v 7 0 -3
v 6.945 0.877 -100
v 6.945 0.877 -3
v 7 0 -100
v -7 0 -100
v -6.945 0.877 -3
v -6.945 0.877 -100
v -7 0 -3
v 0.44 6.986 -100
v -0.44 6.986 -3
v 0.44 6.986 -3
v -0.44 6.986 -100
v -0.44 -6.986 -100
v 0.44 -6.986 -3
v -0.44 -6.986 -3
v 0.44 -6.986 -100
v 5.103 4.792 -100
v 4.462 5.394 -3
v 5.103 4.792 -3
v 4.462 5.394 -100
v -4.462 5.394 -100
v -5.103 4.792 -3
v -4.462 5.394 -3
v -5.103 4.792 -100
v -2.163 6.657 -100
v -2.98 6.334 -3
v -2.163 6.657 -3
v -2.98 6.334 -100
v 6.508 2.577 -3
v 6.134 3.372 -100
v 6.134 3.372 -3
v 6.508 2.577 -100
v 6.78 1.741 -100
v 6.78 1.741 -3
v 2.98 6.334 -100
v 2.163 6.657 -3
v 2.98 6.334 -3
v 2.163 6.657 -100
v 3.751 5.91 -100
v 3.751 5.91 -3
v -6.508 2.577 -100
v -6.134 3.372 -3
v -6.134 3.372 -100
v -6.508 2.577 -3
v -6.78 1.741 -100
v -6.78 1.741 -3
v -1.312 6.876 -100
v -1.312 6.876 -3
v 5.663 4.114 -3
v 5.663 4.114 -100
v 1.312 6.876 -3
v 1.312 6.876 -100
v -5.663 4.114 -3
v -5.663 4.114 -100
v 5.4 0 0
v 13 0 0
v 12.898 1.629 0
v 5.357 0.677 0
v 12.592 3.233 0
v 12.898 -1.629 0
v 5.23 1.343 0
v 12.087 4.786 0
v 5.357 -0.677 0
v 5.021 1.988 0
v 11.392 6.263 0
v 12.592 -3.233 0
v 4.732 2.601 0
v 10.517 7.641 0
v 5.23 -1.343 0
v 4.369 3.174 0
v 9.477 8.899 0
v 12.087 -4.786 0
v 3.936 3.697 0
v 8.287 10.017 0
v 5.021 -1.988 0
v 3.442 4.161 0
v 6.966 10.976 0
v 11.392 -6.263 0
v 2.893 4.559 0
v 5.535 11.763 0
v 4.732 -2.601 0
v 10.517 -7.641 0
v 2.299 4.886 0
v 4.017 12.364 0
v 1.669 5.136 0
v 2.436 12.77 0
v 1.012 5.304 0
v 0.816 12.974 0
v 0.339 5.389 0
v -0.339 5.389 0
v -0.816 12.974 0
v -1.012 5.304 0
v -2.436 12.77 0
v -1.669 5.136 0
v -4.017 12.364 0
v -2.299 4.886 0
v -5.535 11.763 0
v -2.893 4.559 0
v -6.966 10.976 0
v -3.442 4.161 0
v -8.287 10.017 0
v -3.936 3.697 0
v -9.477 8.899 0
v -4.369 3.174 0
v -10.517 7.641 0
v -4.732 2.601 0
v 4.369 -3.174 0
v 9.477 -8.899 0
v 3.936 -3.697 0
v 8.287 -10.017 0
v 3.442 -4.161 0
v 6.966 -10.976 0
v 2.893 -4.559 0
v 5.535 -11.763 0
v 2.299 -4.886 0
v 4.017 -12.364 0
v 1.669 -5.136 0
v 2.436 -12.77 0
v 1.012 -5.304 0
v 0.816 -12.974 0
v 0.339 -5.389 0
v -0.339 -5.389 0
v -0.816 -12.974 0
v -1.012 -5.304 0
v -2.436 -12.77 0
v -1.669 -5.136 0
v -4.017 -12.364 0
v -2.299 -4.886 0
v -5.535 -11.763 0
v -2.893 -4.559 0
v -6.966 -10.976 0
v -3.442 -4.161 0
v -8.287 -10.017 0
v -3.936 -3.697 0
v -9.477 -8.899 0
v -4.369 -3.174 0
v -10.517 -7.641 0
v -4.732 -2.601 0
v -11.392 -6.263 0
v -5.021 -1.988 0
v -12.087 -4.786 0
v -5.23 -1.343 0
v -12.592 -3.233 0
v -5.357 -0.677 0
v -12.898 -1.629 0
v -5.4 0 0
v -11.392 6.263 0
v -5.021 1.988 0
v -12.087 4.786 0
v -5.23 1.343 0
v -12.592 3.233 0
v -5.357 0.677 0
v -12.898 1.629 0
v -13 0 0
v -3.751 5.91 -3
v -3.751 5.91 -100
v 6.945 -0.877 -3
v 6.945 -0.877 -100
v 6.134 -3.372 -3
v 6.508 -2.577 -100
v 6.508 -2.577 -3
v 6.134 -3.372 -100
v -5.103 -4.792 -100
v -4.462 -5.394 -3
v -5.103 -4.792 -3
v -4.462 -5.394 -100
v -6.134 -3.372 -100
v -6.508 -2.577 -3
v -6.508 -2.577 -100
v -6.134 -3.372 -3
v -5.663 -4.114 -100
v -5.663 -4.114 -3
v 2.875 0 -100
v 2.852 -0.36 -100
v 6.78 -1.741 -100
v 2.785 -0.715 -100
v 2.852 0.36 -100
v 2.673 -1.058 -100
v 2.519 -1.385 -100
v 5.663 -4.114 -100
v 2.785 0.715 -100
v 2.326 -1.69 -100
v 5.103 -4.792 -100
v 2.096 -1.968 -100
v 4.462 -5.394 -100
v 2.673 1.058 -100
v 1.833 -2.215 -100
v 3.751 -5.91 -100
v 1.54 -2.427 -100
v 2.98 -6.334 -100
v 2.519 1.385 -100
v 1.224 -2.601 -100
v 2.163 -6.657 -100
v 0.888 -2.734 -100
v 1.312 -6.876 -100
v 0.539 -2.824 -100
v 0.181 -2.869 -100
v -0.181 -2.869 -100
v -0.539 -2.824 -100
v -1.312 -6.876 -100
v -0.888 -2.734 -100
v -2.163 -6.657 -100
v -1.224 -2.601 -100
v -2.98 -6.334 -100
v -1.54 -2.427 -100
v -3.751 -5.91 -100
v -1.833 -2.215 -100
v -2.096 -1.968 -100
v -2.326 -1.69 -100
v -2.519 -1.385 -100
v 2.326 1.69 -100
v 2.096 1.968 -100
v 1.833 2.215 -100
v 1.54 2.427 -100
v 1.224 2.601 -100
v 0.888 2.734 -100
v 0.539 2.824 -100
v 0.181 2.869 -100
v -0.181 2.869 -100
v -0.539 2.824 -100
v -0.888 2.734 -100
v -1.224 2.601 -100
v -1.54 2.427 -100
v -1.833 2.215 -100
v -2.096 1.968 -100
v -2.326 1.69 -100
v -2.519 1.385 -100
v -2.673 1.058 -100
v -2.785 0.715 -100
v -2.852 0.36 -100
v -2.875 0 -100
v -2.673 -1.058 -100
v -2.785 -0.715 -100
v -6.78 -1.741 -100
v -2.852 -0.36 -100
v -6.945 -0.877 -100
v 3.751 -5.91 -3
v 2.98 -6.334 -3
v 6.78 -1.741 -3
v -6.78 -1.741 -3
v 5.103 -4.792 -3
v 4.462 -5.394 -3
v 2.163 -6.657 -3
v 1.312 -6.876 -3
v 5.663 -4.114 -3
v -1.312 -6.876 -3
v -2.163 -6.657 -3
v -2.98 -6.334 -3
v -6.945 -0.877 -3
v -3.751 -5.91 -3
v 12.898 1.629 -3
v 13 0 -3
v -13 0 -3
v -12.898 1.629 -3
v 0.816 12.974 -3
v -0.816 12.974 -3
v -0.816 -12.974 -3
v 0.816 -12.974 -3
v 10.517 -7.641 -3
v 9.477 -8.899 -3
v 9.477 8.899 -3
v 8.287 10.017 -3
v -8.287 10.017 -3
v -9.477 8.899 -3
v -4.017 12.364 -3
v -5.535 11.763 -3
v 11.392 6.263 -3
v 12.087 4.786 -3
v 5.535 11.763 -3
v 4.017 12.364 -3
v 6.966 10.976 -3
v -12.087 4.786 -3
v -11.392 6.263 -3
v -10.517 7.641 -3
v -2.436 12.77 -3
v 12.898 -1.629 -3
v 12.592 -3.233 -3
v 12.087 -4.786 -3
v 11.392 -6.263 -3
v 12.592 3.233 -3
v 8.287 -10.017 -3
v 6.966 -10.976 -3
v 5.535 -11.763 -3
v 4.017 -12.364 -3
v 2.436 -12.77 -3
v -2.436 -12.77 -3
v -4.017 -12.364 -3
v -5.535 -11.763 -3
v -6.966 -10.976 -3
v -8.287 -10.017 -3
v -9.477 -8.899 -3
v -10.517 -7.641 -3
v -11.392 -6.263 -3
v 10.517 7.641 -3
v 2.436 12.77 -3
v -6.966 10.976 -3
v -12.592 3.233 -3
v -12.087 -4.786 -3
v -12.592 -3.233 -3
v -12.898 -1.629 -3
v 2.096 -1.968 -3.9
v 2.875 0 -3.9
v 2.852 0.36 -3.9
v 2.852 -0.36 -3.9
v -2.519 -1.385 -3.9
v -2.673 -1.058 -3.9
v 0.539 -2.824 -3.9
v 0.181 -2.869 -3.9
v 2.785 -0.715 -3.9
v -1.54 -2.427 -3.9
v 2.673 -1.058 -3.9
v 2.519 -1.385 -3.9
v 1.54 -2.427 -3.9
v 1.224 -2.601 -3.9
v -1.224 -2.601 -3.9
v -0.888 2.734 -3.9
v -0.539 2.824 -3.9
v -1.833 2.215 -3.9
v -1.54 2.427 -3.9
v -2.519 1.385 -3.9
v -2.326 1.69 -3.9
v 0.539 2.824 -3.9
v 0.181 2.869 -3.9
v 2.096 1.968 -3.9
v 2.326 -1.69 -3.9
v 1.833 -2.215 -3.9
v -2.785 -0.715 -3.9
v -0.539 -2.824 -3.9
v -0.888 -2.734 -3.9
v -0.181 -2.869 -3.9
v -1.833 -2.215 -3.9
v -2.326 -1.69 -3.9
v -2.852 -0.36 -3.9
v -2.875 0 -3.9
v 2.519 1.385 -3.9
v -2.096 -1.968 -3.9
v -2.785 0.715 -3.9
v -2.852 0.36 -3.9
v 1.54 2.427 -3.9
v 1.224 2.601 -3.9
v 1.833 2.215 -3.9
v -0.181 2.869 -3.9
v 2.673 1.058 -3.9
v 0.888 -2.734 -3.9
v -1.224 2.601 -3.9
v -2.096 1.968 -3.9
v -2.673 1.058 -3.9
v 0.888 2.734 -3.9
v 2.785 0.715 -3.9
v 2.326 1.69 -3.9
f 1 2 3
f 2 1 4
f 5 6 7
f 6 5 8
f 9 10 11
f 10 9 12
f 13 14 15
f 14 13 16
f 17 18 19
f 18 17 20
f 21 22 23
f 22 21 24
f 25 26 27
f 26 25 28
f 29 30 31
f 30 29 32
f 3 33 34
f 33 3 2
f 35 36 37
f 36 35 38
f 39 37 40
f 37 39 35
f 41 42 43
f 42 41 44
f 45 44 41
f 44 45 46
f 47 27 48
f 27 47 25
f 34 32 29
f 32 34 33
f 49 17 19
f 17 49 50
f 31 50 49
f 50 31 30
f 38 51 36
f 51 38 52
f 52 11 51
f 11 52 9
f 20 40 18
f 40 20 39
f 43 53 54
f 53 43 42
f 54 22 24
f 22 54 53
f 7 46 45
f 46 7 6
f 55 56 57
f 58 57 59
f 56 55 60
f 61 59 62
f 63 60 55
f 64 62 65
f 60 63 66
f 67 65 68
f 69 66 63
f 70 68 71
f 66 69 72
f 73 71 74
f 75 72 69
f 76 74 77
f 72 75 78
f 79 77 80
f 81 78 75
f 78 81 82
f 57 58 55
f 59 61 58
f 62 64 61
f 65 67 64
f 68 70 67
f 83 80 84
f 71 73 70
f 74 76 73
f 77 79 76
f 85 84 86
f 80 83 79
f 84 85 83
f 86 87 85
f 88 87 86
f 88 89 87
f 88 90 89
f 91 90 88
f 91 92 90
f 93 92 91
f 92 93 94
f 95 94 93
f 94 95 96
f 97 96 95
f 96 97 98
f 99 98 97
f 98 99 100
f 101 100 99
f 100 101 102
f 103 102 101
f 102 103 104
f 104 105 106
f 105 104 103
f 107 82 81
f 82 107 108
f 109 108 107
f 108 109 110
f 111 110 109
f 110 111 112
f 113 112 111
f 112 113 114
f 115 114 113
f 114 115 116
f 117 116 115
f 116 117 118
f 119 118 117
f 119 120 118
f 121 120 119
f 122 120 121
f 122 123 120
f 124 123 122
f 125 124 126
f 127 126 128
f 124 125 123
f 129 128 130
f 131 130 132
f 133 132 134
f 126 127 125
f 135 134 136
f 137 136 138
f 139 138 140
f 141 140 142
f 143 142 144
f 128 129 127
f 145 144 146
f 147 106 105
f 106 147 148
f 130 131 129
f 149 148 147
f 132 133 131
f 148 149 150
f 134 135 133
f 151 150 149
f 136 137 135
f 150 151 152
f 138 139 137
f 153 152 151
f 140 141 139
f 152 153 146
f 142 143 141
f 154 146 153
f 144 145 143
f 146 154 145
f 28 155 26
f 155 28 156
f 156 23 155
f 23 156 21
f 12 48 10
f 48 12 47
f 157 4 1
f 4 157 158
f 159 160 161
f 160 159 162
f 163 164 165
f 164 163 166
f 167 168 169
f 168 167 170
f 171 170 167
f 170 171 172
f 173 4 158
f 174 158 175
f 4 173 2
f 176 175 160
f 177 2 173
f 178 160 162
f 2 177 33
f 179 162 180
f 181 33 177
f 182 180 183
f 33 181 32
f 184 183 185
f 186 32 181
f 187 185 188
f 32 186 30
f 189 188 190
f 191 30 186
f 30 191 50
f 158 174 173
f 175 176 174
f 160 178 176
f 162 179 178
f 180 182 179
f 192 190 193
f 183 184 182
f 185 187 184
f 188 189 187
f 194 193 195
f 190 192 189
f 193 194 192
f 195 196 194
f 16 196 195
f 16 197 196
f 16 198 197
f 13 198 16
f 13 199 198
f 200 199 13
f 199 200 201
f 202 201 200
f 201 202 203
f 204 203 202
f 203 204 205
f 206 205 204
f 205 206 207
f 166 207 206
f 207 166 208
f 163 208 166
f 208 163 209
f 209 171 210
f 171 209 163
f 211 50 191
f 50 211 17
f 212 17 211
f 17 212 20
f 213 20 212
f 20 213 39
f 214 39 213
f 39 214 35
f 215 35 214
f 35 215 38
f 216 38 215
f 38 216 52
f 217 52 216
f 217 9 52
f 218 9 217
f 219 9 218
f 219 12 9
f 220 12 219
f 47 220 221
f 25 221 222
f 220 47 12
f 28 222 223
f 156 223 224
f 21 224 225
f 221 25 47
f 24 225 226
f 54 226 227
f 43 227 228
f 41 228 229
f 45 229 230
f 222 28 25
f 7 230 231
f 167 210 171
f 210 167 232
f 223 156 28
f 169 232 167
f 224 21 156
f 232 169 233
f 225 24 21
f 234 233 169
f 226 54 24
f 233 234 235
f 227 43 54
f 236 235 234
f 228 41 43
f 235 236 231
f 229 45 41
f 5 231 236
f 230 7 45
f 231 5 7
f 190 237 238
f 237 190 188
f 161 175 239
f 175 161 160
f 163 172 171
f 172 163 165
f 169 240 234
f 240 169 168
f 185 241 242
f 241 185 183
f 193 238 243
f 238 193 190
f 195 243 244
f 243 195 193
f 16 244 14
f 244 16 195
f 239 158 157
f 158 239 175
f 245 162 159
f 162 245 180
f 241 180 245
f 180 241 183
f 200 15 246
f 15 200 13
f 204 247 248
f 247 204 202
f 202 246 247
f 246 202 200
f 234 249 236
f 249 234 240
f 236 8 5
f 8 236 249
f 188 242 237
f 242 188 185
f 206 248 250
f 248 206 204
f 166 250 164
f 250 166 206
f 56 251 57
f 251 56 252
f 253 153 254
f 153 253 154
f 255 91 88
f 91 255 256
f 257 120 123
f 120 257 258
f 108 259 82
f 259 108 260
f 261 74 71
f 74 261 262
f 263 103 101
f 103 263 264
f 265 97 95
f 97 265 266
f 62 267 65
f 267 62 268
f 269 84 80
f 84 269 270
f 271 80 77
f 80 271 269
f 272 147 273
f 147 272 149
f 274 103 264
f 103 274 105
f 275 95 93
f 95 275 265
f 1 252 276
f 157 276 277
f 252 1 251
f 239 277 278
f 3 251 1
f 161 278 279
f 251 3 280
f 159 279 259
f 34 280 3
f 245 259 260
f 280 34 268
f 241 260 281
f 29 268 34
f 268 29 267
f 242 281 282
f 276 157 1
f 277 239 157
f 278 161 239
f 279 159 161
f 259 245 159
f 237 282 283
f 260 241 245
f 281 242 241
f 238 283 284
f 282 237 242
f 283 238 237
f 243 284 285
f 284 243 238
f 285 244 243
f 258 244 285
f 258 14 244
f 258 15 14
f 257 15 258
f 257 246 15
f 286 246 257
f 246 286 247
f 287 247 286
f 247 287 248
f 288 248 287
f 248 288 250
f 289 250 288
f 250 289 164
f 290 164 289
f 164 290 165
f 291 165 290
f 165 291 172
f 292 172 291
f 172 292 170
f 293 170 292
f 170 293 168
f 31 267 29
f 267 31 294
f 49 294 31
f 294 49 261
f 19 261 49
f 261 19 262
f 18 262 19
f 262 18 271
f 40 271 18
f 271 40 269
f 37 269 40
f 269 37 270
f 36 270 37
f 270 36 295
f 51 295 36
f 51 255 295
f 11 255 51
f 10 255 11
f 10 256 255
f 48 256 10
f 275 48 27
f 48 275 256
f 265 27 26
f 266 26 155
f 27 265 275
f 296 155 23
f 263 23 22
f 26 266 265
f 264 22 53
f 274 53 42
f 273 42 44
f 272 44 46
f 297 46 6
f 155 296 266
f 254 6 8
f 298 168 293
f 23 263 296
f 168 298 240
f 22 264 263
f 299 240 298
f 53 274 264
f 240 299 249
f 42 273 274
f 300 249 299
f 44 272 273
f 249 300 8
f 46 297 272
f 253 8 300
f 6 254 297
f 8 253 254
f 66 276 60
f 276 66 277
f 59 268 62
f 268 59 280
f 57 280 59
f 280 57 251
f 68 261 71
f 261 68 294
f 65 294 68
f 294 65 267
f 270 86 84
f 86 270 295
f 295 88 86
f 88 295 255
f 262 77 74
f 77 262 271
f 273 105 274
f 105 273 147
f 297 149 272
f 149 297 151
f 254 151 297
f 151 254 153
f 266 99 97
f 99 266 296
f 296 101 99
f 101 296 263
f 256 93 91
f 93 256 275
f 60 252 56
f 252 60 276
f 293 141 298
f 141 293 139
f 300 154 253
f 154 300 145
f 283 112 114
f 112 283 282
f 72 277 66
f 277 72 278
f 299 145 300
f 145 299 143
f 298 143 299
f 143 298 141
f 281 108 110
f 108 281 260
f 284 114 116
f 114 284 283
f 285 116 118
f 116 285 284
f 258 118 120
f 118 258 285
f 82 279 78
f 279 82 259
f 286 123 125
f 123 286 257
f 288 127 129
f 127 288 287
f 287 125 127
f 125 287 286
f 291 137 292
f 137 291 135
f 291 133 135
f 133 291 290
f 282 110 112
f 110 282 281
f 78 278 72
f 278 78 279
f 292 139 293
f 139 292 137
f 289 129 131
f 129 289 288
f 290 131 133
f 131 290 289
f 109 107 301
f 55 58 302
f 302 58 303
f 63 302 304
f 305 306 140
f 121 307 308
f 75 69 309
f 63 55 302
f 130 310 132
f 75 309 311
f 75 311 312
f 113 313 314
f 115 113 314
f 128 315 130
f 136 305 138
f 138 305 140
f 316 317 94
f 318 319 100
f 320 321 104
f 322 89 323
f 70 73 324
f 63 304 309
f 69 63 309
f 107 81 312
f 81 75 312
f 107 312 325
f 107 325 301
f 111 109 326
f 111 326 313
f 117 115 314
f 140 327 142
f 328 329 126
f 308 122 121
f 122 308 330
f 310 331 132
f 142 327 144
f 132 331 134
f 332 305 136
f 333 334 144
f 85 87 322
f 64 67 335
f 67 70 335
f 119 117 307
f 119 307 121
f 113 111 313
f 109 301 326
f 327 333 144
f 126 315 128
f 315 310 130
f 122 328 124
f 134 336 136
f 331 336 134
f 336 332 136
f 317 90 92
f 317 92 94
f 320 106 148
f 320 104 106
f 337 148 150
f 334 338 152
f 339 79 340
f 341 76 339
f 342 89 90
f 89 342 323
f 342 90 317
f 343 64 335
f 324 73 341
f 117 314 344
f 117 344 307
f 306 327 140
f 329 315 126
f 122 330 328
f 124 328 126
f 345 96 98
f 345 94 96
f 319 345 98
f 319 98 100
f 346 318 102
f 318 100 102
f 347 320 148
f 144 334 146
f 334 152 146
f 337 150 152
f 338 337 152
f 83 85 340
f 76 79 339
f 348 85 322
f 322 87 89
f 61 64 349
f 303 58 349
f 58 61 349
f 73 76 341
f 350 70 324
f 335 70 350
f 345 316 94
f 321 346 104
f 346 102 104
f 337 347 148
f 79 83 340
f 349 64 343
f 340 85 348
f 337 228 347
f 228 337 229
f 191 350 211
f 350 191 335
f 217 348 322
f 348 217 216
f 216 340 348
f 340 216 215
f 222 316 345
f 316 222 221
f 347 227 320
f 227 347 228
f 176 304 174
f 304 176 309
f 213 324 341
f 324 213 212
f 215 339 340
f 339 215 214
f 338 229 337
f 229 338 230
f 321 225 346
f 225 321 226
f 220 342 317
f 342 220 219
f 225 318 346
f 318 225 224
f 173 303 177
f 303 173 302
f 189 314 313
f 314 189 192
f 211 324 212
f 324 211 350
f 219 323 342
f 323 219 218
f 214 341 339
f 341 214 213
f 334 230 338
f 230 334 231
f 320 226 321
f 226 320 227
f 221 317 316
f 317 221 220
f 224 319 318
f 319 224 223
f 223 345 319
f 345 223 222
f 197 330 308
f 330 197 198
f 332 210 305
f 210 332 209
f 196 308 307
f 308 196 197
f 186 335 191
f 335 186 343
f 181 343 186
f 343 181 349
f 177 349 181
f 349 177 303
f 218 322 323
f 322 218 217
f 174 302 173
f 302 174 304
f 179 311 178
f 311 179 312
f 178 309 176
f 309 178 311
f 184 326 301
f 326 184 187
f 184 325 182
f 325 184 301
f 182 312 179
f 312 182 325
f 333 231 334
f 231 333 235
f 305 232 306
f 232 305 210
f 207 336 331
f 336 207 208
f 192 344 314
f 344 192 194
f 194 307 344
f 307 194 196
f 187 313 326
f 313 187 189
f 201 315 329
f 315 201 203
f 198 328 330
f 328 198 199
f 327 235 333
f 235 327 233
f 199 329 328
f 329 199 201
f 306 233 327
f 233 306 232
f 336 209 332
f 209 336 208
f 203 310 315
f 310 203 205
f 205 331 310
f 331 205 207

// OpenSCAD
$fn = 50;


difference() {
	union() {
		translate(v = [0, 0, -100.0000000000]) {
			cylinder(h = 100, r = 7.0000000000);
		}
		translate(v = [0, 0, -3.0000000000]) {
			cylinder(h = 3, r = 13.0000000000);
		}
	}
	union() {
		translate(v = [0, 0, 0]) {
			rotate(a = [0, 0, 0]) {
				difference() {
					union() {
						#translate(v = [0, 0, -100.0000000000]) {
							cylinder(h = 100, r = 2.6000000000);
						}
						#translate(v = [0, 0, -3.9000000000]) {
							cylinder(h = 3.9000000000, r1 = 2.8750000000, r2 = 5.4000000000);
						}
						#translate(v = [0, 0, -100.0000000000]) {
							cylinder(h = 100, r = 2.8750000000);
						}
						#translate(v = [0, 0, -100.0000000000]) {
							cylinder(h = 100, r = 2.6000000000);
						}
					}
					union();
				}
			}
		}
	}
}
